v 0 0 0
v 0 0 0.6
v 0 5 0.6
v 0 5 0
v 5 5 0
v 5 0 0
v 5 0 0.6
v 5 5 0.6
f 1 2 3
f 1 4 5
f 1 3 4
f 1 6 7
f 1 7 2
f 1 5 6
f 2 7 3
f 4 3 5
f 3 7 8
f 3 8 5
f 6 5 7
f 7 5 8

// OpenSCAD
/* Warning, this is a very basic generator with a lot of approximation 
input data : [UQFN, SCX, 5x5x0.6mm, 36, , D, C04-00436D]
generated by com.zoubworld.electronics.cad.model3d.Basic
Date : Sun Feb 15 10:50:48 CET 2026
*/

//body
color("black")
translate([0,0,0])
cube([5.0,5.0,0.6], center=false);
